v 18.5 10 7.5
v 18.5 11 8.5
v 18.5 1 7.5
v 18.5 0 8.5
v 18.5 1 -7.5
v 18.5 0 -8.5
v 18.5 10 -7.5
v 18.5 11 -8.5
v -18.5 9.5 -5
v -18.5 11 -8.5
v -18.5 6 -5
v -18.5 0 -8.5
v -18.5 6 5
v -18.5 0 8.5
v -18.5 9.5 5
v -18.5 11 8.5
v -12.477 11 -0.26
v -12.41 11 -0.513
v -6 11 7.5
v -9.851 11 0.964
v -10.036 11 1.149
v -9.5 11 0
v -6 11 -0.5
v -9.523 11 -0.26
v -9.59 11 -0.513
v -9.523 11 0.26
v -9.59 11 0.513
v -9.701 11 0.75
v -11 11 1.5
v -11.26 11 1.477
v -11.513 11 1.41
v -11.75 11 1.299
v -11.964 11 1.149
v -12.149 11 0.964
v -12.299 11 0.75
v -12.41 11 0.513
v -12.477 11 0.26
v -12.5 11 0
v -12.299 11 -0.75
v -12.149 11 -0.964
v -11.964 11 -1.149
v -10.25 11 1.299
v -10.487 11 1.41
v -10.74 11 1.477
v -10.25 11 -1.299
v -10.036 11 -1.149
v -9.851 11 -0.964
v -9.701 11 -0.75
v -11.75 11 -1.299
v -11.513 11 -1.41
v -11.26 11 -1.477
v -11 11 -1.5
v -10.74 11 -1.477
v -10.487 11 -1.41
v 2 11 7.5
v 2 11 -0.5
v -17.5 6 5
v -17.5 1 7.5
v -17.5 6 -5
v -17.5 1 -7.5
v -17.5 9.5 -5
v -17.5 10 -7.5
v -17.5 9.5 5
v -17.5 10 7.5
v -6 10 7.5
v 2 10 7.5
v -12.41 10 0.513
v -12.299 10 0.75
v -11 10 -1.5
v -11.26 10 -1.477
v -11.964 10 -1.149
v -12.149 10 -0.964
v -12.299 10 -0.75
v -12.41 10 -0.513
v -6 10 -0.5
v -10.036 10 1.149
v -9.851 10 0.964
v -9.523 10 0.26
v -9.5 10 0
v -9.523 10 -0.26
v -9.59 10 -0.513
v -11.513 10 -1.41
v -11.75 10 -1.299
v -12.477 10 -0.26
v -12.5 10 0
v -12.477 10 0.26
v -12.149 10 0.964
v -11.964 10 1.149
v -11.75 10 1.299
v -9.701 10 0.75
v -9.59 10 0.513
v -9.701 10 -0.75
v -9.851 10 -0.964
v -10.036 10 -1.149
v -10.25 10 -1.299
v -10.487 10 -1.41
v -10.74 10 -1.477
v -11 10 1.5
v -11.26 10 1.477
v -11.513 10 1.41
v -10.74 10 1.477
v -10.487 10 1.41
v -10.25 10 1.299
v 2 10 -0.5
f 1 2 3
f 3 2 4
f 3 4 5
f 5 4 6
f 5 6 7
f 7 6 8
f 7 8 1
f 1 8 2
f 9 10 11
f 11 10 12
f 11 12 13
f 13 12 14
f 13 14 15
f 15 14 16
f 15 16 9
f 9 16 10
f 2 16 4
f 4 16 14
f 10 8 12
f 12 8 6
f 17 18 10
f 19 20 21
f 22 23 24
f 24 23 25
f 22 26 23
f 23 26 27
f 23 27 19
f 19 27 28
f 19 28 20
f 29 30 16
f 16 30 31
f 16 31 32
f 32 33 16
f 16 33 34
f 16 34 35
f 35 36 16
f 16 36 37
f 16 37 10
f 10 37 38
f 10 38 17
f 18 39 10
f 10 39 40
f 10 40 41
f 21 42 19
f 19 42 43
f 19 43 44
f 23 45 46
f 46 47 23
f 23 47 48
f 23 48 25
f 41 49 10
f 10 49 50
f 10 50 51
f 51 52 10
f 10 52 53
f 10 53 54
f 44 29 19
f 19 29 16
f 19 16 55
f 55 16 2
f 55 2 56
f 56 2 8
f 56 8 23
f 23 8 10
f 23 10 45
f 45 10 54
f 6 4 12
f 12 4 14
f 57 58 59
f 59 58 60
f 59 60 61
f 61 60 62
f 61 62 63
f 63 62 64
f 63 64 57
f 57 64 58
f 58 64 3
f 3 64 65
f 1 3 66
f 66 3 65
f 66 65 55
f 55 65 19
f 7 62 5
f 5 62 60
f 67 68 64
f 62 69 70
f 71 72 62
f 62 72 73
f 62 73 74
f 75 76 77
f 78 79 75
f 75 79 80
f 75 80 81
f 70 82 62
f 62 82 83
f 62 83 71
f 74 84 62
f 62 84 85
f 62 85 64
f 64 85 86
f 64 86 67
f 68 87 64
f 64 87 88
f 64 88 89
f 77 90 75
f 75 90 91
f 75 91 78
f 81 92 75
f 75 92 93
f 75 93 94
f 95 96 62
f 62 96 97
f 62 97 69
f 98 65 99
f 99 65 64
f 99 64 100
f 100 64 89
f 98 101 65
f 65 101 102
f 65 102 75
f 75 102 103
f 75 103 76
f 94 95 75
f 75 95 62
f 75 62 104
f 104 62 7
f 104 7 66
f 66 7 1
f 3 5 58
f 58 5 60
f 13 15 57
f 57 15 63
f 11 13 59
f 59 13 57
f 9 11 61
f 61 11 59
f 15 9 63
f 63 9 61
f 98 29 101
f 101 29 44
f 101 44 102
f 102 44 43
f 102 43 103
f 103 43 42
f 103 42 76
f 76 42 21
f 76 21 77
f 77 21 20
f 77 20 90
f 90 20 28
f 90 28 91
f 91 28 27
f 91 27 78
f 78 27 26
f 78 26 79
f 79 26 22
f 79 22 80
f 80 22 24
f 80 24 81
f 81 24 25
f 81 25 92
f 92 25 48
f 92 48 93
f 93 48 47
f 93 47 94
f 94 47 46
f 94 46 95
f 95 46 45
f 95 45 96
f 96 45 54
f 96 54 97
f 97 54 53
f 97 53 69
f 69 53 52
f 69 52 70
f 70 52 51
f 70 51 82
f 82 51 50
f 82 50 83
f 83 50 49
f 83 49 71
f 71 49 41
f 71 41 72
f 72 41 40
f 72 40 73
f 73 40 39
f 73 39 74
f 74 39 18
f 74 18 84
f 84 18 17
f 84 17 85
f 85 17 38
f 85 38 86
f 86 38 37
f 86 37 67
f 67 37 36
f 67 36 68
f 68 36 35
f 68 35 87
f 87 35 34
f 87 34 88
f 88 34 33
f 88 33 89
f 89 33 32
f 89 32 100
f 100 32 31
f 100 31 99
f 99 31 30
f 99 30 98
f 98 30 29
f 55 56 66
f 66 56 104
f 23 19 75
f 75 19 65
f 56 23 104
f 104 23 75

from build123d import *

# Parameters (mm, degrees)
SKETCH1_W           = 37
SKETCH1_H           = 17
BOSS_EXTRUDE1_DEPTH = 11
SHELL1_T            = -1
SKETCH2_W           = 10
SKETCH2_H           = 3.5
CUT_EXTRUDE1_DEPTH  = 11
SKETCH3_R           = 1.5
SKETCH3_W           = 8
SKETCH3_H           = 8
CUT_EXTRUDE2_DEPTH  = 2


with BuildPart() as part:
    # Sketch1 → Boss-Extrude1 (new body)
    with BuildSketch(Plane(origin=(0, 0, 0), x_dir=(1, 0, 0), z_dir=(0, 1, 0))):
        Rectangle(SKETCH1_W, SKETCH1_H)
    extrude(amount=BOSS_EXTRUDE1_DEPTH)

    # Shell1
    shell1_openings = [part.faces().sort_by_distance(p)[0] for p in [
        (18.5, 5.5, 0),
    ]]
    offset(amount=SHELL1_T, openings=shell1_openings, kind=Kind.INTERSECTION)

    # Sketch2 → Cut-Extrude1 (cut)
    with BuildSketch(Plane.ZY.offset(18.5)):
        with Locations((0, 7.75)):
            Rectangle(SKETCH2_W, SKETCH2_H)
    extrude(amount=-CUT_EXTRUDE1_DEPTH, mode=Mode.SUBTRACT)

    # Sketch3 → Cut-Extrude2 (cut)
    with BuildSketch(Plane(origin=(0, 11, 0), x_dir=(1, 0, 0), z_dir=(0, 1, 0))):
        with Locations(Location((-11, 0, 0), (0, 0, 270))):
            Circle(SKETCH3_R)
        with Locations((-2, -3.5)):
            Rectangle(SKETCH3_W, SKETCH3_H)
    extrude(amount=-CUT_EXTRUDE2_DEPTH, mode=Mode.SUBTRACT)


solid = part.part
